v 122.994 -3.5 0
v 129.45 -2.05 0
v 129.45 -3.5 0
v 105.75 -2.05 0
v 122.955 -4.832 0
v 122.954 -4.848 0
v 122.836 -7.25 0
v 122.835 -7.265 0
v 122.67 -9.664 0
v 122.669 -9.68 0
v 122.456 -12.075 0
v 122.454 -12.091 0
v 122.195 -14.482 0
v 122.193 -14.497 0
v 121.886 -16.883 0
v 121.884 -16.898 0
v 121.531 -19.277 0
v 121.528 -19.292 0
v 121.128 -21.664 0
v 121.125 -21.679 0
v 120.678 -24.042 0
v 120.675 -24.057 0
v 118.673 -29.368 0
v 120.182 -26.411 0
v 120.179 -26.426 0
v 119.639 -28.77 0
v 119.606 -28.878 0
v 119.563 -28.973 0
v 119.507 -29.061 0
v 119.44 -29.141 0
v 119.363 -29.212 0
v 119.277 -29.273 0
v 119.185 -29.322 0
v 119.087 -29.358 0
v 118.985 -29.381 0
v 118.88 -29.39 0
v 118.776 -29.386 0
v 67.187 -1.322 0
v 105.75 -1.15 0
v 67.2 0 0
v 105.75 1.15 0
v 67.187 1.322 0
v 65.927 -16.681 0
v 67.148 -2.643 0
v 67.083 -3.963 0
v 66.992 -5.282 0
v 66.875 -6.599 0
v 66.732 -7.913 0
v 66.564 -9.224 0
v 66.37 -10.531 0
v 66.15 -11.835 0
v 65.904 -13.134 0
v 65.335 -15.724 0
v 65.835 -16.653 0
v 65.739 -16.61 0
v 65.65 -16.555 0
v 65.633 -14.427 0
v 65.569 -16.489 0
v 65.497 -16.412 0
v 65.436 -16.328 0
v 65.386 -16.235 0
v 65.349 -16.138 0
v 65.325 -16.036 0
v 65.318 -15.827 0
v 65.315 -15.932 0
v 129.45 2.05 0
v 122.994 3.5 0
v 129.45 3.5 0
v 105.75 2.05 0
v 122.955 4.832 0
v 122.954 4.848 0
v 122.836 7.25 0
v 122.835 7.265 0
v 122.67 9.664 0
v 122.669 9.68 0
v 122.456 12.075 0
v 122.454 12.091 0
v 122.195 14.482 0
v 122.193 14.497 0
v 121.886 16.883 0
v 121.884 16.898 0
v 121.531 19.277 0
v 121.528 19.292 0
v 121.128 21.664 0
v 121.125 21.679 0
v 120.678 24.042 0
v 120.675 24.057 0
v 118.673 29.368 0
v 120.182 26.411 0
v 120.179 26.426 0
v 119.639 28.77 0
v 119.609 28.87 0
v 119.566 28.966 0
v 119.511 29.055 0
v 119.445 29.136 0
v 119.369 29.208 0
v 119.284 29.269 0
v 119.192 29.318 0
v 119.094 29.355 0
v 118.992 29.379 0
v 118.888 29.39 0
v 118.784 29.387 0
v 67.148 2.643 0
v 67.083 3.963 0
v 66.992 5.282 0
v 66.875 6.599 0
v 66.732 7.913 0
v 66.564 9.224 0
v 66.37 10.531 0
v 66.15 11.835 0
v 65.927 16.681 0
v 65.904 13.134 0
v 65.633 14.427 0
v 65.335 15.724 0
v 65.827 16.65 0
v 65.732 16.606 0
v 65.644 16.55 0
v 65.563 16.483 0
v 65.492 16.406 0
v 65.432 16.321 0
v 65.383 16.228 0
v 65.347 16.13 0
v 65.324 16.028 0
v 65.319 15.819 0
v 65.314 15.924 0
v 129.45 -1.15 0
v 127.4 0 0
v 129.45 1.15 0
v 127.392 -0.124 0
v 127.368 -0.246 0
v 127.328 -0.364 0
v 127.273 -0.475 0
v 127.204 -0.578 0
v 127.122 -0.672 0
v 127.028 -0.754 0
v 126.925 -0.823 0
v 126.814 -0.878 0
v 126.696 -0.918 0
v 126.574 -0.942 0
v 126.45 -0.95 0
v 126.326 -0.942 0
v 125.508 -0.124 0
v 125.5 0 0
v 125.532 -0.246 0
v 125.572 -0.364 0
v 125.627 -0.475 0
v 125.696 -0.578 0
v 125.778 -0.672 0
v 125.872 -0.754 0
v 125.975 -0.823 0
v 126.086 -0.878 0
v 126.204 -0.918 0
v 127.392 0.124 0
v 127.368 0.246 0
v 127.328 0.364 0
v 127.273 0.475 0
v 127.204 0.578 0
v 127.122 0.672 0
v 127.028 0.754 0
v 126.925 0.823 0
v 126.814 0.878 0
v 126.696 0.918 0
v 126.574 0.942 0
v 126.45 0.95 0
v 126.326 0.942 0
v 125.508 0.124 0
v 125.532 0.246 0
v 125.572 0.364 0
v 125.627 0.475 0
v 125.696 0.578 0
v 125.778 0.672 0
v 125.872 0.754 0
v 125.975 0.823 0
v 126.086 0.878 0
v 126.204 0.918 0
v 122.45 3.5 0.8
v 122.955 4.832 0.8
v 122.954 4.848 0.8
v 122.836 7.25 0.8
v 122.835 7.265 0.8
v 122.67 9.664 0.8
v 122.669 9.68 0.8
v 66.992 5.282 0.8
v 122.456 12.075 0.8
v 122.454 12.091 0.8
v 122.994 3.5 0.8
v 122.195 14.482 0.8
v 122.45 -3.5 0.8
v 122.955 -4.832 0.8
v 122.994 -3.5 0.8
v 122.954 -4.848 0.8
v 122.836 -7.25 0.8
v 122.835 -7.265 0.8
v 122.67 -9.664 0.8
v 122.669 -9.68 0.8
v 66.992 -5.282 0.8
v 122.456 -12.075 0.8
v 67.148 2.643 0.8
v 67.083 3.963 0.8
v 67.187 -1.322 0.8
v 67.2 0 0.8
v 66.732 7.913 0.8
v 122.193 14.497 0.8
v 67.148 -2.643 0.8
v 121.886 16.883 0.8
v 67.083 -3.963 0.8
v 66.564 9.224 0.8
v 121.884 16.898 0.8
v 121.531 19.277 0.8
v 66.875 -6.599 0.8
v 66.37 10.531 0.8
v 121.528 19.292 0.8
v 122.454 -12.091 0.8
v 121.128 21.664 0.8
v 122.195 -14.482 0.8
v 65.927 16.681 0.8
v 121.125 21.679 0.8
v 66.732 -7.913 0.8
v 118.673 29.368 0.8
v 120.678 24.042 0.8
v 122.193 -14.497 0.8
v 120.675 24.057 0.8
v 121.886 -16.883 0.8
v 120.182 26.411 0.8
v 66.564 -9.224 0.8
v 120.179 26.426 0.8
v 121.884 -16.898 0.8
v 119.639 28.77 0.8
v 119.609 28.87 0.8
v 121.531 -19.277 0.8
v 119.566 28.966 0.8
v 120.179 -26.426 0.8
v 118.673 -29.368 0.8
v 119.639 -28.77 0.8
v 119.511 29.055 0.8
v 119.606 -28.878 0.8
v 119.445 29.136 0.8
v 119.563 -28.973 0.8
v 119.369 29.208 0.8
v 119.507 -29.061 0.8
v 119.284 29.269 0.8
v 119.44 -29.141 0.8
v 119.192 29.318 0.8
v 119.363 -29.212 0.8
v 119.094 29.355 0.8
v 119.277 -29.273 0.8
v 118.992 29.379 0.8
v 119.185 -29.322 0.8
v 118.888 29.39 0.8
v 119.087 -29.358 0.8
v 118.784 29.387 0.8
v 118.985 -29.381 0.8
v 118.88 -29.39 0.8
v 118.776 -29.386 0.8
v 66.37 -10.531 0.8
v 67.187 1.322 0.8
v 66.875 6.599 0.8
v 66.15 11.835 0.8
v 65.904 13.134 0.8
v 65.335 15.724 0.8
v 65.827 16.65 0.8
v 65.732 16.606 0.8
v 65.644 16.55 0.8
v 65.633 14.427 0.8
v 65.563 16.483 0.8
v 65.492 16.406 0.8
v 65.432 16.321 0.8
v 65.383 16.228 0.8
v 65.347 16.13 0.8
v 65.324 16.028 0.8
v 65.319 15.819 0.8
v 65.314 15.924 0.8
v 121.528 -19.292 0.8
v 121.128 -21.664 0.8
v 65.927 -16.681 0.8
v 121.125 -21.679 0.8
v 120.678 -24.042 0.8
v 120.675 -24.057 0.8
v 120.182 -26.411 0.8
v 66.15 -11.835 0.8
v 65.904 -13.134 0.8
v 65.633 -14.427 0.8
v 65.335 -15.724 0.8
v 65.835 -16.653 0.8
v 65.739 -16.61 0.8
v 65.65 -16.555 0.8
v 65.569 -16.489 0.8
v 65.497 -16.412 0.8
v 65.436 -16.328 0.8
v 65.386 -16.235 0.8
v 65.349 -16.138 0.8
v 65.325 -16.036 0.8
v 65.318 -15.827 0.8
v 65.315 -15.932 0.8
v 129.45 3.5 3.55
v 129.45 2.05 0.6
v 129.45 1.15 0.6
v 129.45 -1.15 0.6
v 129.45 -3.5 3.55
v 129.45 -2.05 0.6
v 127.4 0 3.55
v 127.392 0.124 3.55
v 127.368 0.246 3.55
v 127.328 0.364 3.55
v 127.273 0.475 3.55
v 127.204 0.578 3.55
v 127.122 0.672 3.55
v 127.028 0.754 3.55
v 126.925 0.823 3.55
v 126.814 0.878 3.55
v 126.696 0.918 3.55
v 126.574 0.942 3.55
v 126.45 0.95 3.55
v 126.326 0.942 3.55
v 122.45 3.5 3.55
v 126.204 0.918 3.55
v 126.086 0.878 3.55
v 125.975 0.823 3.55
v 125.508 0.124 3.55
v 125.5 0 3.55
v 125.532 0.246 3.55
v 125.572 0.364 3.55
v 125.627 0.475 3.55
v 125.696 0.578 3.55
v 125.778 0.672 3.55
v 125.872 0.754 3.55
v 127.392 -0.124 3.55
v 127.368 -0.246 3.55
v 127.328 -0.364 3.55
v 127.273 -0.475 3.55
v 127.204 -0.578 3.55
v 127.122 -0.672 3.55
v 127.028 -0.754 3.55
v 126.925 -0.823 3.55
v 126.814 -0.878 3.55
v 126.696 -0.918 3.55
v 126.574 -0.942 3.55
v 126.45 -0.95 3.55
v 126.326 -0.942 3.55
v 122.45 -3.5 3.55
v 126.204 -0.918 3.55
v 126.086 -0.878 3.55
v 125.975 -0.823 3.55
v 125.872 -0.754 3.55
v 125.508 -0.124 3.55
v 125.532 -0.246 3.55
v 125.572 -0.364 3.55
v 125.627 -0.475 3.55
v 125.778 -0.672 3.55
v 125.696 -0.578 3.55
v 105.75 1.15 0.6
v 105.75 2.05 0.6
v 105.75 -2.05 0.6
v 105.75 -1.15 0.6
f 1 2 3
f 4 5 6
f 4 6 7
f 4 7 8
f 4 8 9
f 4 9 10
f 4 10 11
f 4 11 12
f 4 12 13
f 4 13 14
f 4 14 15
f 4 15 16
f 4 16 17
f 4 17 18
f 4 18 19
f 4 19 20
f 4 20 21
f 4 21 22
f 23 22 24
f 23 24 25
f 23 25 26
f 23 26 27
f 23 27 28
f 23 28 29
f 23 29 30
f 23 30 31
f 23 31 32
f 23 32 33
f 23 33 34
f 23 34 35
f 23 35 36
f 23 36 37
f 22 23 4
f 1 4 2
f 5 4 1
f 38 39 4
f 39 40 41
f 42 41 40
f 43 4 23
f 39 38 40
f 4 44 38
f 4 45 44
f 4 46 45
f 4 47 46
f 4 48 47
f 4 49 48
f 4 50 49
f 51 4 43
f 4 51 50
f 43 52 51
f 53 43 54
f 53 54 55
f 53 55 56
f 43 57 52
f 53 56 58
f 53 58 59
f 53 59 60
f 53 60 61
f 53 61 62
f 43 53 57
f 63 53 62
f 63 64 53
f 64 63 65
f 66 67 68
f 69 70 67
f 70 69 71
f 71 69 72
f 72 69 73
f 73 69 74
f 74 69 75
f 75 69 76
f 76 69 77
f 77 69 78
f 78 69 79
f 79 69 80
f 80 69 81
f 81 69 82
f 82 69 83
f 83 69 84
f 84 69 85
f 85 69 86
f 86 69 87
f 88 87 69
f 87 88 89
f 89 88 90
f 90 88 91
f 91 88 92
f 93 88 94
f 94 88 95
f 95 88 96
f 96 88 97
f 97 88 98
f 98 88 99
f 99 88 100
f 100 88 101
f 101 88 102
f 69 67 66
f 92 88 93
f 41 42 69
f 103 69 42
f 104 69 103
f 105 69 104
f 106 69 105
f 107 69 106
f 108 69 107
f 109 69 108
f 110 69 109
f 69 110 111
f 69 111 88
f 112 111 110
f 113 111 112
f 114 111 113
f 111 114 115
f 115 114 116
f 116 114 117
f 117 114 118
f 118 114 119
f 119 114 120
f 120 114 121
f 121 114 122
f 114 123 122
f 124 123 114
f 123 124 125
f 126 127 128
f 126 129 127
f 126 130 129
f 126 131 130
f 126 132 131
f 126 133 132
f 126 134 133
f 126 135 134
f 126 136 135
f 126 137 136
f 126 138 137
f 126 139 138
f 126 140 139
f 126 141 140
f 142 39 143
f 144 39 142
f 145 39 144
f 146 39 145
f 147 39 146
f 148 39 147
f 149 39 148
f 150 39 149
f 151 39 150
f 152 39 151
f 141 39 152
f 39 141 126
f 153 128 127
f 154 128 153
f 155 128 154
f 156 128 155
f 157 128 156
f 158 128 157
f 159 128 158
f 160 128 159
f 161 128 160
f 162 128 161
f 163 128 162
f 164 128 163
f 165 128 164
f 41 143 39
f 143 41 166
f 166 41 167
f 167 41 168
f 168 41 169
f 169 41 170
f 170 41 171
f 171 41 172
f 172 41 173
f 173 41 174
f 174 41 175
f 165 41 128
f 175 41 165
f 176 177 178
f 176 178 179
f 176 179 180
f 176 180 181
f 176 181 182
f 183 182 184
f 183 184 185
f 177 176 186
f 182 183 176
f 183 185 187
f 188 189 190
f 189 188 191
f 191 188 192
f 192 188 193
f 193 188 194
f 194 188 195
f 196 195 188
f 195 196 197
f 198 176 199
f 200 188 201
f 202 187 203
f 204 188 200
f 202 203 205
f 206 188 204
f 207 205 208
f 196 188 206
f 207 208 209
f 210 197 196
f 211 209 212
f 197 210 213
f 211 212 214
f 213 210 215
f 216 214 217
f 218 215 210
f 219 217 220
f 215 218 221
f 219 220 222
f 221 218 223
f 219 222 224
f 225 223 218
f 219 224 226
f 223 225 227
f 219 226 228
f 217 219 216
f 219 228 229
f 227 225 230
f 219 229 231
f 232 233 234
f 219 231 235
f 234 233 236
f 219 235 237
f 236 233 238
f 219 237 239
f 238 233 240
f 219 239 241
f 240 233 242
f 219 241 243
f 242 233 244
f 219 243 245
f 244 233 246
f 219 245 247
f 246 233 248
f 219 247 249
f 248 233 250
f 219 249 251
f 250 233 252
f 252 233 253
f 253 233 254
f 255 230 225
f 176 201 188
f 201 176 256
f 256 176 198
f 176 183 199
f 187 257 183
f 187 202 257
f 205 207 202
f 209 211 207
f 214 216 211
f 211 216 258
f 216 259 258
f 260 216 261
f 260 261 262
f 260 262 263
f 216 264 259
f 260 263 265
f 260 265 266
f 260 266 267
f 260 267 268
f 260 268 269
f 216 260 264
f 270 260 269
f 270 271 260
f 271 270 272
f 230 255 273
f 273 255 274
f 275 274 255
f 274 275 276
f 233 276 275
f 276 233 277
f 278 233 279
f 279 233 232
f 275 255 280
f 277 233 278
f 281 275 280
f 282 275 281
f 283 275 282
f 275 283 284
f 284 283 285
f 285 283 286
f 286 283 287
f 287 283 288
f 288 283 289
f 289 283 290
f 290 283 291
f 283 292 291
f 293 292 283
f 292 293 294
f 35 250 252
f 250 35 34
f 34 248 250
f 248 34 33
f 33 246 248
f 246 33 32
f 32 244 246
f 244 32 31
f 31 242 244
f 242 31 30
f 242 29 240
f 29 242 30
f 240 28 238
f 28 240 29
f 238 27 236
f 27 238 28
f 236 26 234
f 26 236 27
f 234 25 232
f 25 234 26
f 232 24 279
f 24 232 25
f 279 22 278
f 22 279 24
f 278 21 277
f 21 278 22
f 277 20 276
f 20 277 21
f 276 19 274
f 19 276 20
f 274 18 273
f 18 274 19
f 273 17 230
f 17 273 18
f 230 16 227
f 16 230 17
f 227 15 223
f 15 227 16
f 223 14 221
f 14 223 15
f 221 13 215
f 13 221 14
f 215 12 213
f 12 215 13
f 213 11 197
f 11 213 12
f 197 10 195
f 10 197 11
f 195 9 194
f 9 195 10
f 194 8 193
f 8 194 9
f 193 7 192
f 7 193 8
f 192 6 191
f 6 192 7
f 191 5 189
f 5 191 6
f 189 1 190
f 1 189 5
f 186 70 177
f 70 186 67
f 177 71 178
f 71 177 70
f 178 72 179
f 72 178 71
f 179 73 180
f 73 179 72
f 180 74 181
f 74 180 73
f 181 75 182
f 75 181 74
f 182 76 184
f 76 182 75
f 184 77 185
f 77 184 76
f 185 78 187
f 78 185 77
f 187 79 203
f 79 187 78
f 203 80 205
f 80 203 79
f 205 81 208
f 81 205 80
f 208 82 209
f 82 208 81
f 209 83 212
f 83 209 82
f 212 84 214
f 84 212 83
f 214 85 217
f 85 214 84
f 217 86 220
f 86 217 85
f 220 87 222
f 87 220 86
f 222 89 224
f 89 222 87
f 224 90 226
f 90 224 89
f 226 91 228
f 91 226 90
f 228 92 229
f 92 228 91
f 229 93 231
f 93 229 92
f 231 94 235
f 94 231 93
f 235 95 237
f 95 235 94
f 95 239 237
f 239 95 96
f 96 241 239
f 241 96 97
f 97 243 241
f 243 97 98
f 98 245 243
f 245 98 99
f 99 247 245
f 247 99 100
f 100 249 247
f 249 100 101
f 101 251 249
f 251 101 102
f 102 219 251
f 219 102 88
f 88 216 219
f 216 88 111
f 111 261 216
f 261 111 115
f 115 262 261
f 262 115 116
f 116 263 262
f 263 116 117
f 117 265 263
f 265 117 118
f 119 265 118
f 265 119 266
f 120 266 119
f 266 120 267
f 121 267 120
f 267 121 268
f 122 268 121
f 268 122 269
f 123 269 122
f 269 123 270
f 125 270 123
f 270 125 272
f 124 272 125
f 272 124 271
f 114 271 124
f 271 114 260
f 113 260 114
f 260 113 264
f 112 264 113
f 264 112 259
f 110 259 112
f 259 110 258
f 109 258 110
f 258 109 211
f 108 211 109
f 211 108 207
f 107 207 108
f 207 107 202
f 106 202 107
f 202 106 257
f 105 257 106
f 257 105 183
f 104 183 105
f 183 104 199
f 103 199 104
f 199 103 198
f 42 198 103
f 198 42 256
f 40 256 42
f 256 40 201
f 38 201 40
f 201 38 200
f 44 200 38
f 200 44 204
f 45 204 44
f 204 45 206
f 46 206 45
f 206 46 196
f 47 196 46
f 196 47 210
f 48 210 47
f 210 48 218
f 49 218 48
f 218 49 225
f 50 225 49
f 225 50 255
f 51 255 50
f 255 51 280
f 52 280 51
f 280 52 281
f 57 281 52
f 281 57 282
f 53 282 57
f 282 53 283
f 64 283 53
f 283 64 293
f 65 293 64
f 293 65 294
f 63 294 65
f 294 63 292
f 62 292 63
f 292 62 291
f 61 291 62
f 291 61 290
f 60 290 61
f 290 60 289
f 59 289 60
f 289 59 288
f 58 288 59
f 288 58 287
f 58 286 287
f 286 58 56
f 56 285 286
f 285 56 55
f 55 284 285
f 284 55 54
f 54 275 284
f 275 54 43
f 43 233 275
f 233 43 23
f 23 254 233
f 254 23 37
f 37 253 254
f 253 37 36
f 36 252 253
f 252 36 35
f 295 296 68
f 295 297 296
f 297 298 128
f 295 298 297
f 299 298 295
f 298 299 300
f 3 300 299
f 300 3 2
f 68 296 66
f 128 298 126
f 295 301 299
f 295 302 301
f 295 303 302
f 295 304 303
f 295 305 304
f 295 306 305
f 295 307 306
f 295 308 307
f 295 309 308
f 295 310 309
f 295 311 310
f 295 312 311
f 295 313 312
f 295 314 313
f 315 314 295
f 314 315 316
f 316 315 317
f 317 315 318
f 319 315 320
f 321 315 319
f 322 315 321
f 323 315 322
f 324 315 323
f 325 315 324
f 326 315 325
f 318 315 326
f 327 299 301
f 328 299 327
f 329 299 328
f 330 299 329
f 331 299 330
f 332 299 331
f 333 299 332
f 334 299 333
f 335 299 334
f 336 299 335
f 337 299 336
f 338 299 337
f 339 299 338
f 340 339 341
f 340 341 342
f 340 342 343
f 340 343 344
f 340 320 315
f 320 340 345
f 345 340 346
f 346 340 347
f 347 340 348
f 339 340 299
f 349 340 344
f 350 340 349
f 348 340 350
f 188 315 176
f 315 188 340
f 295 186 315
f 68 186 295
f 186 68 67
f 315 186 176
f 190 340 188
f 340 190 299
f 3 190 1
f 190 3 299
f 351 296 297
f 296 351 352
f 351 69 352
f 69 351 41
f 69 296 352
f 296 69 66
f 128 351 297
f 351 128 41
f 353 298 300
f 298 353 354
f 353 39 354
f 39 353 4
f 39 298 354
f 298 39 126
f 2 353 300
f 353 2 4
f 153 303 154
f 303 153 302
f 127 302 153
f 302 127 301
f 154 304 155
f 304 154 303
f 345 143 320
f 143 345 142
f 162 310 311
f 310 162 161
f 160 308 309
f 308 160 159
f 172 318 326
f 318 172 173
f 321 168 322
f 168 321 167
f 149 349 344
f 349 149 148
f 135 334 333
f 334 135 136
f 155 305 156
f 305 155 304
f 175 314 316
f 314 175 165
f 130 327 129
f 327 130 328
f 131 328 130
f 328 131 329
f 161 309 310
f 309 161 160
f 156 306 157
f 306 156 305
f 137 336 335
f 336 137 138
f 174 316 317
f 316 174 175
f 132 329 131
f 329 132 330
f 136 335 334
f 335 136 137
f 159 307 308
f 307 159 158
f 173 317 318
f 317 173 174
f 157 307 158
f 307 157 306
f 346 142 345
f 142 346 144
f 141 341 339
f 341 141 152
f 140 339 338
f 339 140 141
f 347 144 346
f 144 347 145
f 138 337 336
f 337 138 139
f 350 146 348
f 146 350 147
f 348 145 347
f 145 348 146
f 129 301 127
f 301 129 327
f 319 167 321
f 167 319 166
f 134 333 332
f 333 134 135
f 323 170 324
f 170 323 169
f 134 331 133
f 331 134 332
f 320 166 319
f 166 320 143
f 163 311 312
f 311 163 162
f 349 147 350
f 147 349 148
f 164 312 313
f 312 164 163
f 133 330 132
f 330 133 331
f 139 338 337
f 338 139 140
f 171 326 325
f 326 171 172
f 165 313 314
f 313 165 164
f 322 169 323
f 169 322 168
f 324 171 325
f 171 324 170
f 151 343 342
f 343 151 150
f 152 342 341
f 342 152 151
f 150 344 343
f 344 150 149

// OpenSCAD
// Gen-DD — bobbin LID (top flange + locating tab). Print x12, flange face DOWN on the bed.
// CA-glue onto the hub top BEFORE winding. Tab = lap joint into the stator tab pocket; 1.75 mm filament
// pin through pin hole + stator ledge, trim flush. Lead slots carry both leads flush.
include <parameters.scad>;
$fn = 48;
module sector_2d(r_in, r_out, ang) {
    polygon([
        for (a = [-ang/2 : ang/24 : ang/2]) [r_in*cos(a), r_in*sin(a)],
        for (a = [ang/2 : -ang/24 : -ang/2]) [r_out*cos(a), r_out*sin(a)]
    ]);
}
module footprint_2d() { offset(r=wall) sector_2d(coil_id_r, coil_od_r, span_deg); }
module hub_2d()       { offset(delta=-coil_core_inset) sector_2d(coil_id_r, coil_od_r, span_deg); }

difference() {
    union() {
        linear_extrude(flange_t) footprint_2d();
        translate([coil_od_r + 0.2, -tab_w/2, 0]) cube([tab_len, tab_w, tab_h]);
    }
    translate([coil_mount_r, 0, -0.1]) cylinder(d=pin_d, h=tab_h + 1);
    for (y = [lead_y, -lead_y])
        translate([coil_od_r - coil_core_inset - 0.5, y - lead_slot_w/2, -0.1])
            cube([coil_core_inset + tab_len + 2, lead_slot_w, lead_groove_d + 0.1]);
}
